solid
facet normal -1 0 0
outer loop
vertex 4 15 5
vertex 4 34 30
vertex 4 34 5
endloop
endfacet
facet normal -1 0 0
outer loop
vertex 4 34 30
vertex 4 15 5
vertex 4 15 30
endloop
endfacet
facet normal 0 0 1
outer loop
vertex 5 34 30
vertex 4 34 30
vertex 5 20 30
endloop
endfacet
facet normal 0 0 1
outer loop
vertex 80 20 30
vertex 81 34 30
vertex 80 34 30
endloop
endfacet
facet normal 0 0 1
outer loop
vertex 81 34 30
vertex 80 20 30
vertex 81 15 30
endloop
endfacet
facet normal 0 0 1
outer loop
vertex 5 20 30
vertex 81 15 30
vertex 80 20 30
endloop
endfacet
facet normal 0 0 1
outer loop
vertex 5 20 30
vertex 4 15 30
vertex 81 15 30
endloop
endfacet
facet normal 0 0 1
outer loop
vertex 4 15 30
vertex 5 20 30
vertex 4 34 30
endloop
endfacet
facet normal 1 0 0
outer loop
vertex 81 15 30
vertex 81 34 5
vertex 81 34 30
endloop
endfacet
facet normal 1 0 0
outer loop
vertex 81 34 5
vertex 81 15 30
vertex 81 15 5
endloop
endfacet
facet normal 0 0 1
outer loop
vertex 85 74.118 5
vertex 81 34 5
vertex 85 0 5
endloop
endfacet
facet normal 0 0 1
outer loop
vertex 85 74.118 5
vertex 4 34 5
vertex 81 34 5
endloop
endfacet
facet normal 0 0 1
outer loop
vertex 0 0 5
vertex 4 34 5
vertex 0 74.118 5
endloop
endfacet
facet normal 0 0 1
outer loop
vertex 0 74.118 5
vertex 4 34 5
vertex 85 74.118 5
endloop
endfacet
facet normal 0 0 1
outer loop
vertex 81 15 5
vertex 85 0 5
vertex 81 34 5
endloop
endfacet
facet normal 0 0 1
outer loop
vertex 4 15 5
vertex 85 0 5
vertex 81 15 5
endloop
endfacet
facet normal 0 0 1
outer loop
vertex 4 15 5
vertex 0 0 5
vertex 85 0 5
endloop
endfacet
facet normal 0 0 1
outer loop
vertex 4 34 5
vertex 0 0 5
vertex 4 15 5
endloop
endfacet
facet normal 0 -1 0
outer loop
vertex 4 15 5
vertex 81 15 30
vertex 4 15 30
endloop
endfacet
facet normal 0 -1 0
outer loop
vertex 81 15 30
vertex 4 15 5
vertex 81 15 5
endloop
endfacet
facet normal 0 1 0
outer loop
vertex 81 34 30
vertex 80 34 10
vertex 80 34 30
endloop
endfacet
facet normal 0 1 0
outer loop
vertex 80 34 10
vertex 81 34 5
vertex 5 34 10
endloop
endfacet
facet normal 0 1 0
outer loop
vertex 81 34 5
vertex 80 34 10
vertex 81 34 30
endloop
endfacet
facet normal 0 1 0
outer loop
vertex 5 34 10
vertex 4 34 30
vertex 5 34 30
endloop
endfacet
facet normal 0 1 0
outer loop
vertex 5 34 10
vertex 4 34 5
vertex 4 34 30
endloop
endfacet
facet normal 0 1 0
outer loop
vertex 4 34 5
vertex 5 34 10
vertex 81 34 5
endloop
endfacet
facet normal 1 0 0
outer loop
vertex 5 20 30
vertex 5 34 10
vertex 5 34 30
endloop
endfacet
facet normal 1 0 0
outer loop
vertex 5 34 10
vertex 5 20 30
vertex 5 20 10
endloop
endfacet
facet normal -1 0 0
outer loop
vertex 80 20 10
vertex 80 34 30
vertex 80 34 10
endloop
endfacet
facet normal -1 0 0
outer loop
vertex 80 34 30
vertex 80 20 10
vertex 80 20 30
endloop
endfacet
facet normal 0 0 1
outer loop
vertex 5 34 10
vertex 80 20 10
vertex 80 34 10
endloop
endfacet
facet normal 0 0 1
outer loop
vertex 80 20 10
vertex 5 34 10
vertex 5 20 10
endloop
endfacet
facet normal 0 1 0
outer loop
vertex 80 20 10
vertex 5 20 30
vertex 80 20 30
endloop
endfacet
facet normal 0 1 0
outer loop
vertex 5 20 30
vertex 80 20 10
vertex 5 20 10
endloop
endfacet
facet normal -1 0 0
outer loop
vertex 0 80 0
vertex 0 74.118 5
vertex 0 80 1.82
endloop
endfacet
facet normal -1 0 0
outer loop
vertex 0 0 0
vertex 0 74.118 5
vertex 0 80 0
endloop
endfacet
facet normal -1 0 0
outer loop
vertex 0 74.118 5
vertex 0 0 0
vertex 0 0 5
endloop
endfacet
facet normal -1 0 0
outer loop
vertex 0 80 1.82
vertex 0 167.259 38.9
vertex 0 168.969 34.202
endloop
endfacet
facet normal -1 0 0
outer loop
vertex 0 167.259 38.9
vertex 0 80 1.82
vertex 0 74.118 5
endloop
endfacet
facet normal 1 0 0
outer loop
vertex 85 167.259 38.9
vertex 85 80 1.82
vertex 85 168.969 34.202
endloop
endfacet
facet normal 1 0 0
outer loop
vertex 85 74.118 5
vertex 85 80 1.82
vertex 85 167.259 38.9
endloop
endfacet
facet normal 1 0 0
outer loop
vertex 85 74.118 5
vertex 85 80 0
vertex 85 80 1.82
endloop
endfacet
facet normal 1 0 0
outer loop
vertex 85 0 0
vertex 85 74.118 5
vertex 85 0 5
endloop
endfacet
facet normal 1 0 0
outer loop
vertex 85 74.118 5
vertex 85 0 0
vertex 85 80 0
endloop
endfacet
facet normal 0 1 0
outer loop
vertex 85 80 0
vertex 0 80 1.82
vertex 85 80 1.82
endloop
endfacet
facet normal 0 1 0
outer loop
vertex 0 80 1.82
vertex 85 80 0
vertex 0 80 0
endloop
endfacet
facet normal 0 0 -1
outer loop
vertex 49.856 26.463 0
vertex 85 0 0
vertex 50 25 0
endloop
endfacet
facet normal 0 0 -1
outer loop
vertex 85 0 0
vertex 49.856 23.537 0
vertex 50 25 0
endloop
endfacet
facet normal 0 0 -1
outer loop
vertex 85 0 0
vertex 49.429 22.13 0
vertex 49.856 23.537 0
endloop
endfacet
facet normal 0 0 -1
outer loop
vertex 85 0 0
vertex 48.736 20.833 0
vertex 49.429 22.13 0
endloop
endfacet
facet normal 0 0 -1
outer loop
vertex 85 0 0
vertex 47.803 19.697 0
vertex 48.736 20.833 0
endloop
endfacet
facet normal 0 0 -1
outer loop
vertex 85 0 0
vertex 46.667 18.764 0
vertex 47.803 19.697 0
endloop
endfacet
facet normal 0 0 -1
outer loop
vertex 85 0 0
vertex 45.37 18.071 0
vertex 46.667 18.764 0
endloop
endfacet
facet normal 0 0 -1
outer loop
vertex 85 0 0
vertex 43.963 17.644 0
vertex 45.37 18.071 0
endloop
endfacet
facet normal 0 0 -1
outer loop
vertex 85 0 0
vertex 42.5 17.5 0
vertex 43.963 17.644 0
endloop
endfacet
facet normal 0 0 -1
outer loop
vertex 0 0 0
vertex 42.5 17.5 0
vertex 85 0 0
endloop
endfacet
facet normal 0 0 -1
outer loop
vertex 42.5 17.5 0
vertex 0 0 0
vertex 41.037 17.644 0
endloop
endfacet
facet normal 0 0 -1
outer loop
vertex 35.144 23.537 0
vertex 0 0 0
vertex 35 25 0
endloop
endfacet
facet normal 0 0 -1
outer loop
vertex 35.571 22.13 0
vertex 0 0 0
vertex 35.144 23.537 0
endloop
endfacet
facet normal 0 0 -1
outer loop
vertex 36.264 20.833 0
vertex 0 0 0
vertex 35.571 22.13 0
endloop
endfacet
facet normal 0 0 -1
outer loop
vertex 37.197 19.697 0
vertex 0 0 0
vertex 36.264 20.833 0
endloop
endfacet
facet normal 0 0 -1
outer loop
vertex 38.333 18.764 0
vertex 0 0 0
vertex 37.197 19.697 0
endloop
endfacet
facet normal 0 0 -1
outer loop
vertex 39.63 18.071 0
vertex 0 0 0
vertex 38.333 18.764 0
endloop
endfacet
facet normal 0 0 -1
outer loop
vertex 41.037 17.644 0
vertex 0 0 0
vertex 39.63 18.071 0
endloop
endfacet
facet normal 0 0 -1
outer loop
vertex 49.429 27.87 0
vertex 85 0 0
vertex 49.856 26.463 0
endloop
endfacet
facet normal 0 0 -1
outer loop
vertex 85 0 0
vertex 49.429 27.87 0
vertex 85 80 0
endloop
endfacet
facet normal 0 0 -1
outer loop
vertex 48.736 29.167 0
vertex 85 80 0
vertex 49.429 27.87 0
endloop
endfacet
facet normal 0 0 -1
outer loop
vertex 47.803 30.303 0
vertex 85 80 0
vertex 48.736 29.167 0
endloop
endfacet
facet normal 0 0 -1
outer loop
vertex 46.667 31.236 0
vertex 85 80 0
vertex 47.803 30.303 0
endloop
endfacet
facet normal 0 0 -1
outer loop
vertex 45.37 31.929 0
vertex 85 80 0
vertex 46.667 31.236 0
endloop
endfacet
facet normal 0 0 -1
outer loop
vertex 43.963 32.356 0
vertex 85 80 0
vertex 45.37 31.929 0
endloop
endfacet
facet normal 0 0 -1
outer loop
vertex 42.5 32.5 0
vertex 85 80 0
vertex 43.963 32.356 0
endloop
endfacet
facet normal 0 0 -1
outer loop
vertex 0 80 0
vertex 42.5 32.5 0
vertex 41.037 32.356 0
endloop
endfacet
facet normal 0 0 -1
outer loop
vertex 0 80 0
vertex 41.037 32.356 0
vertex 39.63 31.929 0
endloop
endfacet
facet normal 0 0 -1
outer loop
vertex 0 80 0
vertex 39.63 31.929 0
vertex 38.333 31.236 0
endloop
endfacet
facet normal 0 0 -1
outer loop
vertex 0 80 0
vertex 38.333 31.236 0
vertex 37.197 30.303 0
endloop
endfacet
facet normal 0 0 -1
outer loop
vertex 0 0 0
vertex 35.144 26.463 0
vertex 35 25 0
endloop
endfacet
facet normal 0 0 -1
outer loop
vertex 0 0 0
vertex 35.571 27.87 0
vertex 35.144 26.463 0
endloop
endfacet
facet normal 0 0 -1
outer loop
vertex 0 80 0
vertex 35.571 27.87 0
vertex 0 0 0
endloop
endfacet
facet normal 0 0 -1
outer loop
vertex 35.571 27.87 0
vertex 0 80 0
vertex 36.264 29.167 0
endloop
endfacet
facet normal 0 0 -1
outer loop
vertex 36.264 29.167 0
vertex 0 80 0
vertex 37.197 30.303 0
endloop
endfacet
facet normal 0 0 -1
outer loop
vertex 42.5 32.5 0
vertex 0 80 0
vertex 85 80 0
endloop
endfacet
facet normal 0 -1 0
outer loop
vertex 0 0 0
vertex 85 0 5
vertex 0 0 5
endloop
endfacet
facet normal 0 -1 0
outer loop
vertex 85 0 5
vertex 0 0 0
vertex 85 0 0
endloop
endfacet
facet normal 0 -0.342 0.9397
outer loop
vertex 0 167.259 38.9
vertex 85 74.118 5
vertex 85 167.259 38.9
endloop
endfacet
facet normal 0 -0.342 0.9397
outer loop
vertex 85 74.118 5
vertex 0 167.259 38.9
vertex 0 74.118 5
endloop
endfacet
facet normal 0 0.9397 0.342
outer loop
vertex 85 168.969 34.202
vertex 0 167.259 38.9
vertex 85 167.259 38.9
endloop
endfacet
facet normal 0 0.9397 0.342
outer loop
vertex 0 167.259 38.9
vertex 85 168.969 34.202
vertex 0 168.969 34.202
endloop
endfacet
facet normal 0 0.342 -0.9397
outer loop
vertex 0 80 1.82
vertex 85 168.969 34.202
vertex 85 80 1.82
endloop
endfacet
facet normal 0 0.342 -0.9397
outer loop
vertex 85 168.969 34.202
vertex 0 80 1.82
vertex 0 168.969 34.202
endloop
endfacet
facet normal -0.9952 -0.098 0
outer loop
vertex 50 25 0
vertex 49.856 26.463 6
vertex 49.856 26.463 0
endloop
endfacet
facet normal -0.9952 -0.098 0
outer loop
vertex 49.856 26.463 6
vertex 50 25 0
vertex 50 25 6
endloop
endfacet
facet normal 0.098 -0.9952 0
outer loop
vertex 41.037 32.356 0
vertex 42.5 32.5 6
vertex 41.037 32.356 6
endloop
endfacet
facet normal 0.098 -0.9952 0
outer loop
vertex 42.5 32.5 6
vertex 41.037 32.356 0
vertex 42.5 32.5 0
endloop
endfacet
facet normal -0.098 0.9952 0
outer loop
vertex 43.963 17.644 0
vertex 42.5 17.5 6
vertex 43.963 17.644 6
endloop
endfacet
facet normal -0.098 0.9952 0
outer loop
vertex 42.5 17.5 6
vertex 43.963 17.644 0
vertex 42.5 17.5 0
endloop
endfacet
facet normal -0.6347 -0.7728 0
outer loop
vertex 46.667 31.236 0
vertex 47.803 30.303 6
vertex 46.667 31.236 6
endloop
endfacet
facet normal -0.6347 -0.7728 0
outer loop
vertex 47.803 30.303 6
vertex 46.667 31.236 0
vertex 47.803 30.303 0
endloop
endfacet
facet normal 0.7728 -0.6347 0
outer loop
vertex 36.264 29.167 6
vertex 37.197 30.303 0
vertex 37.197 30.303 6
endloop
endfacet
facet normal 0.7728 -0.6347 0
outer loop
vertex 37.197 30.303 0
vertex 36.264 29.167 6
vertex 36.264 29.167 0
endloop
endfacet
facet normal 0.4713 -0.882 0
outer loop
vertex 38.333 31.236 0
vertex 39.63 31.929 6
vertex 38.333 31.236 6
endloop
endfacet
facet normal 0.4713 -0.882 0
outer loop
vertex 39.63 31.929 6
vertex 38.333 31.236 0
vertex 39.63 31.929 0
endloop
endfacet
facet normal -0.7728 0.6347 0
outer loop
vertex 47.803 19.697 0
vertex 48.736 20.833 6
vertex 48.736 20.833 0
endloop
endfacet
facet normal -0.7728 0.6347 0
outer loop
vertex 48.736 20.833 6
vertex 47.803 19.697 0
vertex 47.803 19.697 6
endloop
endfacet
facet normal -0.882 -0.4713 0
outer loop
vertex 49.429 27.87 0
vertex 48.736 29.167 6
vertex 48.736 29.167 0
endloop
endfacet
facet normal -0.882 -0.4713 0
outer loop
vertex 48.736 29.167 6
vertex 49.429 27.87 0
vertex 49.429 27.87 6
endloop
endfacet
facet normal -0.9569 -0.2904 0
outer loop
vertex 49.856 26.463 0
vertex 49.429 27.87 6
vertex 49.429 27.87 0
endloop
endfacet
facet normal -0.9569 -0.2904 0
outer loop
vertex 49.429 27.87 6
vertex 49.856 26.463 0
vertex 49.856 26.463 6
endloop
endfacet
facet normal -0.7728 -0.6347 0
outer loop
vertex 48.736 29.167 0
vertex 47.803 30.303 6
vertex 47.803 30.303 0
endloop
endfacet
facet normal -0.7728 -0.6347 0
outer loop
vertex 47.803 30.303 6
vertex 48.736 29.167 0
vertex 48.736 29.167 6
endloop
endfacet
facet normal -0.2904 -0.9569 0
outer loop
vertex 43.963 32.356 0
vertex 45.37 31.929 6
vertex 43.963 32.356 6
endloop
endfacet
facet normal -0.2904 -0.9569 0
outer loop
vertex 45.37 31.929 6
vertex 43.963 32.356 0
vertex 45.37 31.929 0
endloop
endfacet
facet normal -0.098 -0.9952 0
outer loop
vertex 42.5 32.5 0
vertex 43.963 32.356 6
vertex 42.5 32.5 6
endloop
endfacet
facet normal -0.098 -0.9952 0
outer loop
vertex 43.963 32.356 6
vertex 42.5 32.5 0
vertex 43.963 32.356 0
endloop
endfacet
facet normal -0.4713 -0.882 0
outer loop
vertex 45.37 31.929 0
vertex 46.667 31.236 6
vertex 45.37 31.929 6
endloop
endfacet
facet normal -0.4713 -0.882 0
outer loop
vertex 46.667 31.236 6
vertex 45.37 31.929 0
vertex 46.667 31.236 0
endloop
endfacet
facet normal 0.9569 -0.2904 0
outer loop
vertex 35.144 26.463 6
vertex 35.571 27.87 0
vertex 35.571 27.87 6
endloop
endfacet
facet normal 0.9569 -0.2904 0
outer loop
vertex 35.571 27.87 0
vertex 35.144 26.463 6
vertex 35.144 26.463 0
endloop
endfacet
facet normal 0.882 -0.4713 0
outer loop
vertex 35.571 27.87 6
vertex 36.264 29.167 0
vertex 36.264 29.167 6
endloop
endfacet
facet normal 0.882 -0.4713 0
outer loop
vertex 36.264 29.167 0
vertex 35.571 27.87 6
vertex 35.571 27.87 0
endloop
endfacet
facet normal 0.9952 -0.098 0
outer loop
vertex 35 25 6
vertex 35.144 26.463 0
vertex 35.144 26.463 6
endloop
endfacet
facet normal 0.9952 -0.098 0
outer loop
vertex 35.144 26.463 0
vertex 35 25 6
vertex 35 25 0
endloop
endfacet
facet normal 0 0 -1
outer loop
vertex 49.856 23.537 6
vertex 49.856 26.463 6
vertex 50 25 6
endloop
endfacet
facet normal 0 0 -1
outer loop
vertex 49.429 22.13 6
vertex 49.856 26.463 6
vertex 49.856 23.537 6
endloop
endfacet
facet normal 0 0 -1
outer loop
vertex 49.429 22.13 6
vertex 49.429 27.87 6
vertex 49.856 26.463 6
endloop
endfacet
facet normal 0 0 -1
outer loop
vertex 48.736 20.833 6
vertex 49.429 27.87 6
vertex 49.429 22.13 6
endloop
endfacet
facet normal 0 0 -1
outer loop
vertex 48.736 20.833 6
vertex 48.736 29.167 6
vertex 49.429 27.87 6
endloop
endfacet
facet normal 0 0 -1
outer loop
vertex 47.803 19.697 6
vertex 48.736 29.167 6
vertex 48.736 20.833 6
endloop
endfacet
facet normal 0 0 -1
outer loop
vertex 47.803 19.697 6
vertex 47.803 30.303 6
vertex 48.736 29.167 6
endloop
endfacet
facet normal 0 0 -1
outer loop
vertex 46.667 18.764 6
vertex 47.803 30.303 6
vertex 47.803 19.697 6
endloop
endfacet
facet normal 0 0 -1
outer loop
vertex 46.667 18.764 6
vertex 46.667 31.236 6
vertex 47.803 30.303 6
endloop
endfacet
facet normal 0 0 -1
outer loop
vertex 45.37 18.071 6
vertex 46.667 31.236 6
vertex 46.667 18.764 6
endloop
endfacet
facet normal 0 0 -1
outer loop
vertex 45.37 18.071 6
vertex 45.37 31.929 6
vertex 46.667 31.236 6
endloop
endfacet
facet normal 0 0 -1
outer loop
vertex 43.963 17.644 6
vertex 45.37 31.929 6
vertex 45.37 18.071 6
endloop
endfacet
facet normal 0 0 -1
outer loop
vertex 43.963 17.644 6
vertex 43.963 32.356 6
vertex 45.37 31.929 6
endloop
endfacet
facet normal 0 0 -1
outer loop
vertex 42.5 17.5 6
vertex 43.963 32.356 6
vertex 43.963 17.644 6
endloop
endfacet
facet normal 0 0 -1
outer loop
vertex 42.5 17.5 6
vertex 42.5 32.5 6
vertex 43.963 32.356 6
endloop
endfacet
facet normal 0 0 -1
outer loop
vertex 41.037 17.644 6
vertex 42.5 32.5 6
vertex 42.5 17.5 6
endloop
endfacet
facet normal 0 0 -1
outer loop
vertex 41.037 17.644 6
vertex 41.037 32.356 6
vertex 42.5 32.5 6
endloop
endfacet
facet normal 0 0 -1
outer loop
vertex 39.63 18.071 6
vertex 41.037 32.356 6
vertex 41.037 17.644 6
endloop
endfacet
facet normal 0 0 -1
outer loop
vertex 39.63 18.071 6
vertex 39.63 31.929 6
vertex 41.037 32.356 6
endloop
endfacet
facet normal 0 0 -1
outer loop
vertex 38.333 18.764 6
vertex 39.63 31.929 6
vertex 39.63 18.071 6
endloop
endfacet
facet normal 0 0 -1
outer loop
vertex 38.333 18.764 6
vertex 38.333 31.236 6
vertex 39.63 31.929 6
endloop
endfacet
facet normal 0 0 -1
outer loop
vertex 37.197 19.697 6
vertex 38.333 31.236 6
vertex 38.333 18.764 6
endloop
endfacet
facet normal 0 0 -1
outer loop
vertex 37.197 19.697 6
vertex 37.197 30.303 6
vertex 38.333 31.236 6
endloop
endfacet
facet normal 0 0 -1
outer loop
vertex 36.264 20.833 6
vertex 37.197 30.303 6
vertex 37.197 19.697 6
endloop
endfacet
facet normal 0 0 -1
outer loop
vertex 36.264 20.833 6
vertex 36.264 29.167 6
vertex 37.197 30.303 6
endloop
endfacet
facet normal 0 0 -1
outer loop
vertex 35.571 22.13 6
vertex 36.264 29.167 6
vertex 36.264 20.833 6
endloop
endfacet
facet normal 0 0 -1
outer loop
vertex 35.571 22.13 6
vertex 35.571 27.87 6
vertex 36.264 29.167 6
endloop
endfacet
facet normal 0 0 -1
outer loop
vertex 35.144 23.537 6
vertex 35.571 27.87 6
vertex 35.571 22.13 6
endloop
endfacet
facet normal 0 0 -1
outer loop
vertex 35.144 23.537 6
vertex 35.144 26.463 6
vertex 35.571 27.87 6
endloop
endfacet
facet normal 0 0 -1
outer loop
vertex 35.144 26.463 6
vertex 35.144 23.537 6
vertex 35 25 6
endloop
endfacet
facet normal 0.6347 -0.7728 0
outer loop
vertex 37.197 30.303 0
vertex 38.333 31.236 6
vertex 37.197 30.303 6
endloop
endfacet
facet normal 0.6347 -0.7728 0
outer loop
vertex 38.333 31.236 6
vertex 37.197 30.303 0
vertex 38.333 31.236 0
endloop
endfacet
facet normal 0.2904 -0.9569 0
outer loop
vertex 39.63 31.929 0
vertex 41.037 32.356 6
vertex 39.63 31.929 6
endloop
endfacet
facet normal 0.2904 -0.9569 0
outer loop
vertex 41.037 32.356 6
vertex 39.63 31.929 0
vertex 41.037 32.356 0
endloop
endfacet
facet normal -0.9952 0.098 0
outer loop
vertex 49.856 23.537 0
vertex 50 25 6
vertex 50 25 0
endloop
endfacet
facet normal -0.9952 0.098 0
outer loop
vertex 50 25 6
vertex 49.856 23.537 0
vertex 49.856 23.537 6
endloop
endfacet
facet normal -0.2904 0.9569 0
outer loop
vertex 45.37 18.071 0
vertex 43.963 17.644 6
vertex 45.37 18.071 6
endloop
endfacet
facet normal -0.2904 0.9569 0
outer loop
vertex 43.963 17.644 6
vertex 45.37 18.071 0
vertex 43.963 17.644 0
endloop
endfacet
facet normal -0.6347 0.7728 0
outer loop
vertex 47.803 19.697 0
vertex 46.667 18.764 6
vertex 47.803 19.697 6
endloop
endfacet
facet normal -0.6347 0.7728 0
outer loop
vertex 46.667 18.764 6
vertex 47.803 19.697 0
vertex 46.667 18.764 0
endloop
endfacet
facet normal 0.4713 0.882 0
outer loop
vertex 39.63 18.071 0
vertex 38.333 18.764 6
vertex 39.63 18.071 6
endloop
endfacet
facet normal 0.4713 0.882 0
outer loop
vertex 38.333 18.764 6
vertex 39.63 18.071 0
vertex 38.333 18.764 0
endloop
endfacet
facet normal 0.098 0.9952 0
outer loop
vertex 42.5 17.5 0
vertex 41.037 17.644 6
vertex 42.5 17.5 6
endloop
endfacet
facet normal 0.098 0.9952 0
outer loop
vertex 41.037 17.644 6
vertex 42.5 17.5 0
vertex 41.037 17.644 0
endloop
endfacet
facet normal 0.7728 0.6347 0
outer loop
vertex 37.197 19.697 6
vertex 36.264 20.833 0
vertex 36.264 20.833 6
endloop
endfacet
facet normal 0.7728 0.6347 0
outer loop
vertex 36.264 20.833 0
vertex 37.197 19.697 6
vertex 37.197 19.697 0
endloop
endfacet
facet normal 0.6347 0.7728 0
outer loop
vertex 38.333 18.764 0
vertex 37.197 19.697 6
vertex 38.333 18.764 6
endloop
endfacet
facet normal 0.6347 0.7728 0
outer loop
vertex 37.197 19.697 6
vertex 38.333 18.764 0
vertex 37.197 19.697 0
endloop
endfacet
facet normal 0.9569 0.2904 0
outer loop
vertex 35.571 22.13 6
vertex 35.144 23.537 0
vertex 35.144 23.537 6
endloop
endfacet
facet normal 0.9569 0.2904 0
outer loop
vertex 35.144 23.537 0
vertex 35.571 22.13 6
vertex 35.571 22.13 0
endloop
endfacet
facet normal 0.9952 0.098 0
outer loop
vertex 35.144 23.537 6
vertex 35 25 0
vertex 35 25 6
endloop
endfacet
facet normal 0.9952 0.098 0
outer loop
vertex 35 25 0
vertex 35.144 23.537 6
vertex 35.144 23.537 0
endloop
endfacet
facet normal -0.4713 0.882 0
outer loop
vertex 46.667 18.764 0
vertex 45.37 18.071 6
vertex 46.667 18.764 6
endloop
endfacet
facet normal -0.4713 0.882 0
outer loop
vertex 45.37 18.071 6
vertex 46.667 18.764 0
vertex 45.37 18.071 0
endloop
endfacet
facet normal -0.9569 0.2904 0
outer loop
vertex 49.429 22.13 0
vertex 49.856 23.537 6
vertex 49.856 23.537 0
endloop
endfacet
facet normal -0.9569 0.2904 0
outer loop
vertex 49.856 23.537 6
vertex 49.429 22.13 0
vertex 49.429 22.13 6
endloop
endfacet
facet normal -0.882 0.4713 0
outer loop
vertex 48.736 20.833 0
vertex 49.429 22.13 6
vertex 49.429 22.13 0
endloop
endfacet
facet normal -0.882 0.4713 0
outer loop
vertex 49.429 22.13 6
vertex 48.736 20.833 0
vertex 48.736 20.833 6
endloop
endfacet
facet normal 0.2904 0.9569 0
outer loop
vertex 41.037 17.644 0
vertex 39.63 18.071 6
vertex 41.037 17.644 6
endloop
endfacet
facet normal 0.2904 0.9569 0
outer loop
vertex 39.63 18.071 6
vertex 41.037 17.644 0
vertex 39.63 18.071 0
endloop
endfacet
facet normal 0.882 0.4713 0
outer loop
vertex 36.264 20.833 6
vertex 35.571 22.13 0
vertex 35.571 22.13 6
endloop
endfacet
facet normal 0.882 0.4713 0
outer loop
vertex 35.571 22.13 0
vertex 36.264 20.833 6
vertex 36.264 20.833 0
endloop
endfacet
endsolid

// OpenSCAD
// iPhone 15 Phone Stand
// Designed for iPhone 15 (147.6 x 71.6 x 7.8mm) with case tolerance

// Phone dimensions with case tolerance
phone_width = 75;      // 71.6mm + case tolerance
phone_thickness = 12;  // 7.8mm + thick case tolerance
phone_height = 150;    // 147.6mm

// Stand parameters
stand_width = 85;
stand_depth = 80;
stand_height = 100;
stand_thickness = 5;
viewing_angle = 70;    // Angle from horizontal

// Slot parameters
slot_width = phone_width + 2;
slot_depth = phone_thickness + 2;
slot_height = 25;

// Cable hole
cable_hole_diameter = 15;

module phone_stand() {
    difference() {
        union() {
            // Base plate
            cube([stand_width, stand_depth, stand_thickness]);
            
            // Back support (angled)
            translate([0, stand_depth - stand_thickness, 0])
            rotate([90 - viewing_angle, 0, 0])
            cube([stand_width, stand_height, stand_thickness]);
            
            // Front lip to hold phone
            translate([(stand_width - slot_width)/2, 15, stand_thickness])
            difference() {
                cube([slot_width, slot_depth + 5, slot_height]);
                translate([1, 5, 5])
                cube([slot_width - 2, slot_depth, slot_height]);
            }
            
            // Side supports for stability
            translate([0, 0, 0])
            linear_extrude(height = stand_thickness)
            polygon([[0, 0], [stand_thickness, 0], [stand_thickness, stand_depth], [0, stand_depth]]);
            
            translate([stand_width - stand_thickness, 0, 0])
            linear_extrude(height = stand_thickness)
            polygon([[0, 0], [stand_thickness, 0], [stand_thickness, stand_depth], [0, stand_depth]]);
        }
        
        // Cable management hole in base
        translate([stand_width/2, 25, -1])
        cylinder(h = stand_thickness + 2, d = cable_hole_diameter, $fn = 32);
        
        // Phone slot cutout in front lip
        translate([(stand_width - slot_width)/2 + 1, 20, stand_thickness + 5])
        cube([slot_width - 2, slot_depth, slot_height + 1]);
    }
}

// Render the stand
phone_stand();
